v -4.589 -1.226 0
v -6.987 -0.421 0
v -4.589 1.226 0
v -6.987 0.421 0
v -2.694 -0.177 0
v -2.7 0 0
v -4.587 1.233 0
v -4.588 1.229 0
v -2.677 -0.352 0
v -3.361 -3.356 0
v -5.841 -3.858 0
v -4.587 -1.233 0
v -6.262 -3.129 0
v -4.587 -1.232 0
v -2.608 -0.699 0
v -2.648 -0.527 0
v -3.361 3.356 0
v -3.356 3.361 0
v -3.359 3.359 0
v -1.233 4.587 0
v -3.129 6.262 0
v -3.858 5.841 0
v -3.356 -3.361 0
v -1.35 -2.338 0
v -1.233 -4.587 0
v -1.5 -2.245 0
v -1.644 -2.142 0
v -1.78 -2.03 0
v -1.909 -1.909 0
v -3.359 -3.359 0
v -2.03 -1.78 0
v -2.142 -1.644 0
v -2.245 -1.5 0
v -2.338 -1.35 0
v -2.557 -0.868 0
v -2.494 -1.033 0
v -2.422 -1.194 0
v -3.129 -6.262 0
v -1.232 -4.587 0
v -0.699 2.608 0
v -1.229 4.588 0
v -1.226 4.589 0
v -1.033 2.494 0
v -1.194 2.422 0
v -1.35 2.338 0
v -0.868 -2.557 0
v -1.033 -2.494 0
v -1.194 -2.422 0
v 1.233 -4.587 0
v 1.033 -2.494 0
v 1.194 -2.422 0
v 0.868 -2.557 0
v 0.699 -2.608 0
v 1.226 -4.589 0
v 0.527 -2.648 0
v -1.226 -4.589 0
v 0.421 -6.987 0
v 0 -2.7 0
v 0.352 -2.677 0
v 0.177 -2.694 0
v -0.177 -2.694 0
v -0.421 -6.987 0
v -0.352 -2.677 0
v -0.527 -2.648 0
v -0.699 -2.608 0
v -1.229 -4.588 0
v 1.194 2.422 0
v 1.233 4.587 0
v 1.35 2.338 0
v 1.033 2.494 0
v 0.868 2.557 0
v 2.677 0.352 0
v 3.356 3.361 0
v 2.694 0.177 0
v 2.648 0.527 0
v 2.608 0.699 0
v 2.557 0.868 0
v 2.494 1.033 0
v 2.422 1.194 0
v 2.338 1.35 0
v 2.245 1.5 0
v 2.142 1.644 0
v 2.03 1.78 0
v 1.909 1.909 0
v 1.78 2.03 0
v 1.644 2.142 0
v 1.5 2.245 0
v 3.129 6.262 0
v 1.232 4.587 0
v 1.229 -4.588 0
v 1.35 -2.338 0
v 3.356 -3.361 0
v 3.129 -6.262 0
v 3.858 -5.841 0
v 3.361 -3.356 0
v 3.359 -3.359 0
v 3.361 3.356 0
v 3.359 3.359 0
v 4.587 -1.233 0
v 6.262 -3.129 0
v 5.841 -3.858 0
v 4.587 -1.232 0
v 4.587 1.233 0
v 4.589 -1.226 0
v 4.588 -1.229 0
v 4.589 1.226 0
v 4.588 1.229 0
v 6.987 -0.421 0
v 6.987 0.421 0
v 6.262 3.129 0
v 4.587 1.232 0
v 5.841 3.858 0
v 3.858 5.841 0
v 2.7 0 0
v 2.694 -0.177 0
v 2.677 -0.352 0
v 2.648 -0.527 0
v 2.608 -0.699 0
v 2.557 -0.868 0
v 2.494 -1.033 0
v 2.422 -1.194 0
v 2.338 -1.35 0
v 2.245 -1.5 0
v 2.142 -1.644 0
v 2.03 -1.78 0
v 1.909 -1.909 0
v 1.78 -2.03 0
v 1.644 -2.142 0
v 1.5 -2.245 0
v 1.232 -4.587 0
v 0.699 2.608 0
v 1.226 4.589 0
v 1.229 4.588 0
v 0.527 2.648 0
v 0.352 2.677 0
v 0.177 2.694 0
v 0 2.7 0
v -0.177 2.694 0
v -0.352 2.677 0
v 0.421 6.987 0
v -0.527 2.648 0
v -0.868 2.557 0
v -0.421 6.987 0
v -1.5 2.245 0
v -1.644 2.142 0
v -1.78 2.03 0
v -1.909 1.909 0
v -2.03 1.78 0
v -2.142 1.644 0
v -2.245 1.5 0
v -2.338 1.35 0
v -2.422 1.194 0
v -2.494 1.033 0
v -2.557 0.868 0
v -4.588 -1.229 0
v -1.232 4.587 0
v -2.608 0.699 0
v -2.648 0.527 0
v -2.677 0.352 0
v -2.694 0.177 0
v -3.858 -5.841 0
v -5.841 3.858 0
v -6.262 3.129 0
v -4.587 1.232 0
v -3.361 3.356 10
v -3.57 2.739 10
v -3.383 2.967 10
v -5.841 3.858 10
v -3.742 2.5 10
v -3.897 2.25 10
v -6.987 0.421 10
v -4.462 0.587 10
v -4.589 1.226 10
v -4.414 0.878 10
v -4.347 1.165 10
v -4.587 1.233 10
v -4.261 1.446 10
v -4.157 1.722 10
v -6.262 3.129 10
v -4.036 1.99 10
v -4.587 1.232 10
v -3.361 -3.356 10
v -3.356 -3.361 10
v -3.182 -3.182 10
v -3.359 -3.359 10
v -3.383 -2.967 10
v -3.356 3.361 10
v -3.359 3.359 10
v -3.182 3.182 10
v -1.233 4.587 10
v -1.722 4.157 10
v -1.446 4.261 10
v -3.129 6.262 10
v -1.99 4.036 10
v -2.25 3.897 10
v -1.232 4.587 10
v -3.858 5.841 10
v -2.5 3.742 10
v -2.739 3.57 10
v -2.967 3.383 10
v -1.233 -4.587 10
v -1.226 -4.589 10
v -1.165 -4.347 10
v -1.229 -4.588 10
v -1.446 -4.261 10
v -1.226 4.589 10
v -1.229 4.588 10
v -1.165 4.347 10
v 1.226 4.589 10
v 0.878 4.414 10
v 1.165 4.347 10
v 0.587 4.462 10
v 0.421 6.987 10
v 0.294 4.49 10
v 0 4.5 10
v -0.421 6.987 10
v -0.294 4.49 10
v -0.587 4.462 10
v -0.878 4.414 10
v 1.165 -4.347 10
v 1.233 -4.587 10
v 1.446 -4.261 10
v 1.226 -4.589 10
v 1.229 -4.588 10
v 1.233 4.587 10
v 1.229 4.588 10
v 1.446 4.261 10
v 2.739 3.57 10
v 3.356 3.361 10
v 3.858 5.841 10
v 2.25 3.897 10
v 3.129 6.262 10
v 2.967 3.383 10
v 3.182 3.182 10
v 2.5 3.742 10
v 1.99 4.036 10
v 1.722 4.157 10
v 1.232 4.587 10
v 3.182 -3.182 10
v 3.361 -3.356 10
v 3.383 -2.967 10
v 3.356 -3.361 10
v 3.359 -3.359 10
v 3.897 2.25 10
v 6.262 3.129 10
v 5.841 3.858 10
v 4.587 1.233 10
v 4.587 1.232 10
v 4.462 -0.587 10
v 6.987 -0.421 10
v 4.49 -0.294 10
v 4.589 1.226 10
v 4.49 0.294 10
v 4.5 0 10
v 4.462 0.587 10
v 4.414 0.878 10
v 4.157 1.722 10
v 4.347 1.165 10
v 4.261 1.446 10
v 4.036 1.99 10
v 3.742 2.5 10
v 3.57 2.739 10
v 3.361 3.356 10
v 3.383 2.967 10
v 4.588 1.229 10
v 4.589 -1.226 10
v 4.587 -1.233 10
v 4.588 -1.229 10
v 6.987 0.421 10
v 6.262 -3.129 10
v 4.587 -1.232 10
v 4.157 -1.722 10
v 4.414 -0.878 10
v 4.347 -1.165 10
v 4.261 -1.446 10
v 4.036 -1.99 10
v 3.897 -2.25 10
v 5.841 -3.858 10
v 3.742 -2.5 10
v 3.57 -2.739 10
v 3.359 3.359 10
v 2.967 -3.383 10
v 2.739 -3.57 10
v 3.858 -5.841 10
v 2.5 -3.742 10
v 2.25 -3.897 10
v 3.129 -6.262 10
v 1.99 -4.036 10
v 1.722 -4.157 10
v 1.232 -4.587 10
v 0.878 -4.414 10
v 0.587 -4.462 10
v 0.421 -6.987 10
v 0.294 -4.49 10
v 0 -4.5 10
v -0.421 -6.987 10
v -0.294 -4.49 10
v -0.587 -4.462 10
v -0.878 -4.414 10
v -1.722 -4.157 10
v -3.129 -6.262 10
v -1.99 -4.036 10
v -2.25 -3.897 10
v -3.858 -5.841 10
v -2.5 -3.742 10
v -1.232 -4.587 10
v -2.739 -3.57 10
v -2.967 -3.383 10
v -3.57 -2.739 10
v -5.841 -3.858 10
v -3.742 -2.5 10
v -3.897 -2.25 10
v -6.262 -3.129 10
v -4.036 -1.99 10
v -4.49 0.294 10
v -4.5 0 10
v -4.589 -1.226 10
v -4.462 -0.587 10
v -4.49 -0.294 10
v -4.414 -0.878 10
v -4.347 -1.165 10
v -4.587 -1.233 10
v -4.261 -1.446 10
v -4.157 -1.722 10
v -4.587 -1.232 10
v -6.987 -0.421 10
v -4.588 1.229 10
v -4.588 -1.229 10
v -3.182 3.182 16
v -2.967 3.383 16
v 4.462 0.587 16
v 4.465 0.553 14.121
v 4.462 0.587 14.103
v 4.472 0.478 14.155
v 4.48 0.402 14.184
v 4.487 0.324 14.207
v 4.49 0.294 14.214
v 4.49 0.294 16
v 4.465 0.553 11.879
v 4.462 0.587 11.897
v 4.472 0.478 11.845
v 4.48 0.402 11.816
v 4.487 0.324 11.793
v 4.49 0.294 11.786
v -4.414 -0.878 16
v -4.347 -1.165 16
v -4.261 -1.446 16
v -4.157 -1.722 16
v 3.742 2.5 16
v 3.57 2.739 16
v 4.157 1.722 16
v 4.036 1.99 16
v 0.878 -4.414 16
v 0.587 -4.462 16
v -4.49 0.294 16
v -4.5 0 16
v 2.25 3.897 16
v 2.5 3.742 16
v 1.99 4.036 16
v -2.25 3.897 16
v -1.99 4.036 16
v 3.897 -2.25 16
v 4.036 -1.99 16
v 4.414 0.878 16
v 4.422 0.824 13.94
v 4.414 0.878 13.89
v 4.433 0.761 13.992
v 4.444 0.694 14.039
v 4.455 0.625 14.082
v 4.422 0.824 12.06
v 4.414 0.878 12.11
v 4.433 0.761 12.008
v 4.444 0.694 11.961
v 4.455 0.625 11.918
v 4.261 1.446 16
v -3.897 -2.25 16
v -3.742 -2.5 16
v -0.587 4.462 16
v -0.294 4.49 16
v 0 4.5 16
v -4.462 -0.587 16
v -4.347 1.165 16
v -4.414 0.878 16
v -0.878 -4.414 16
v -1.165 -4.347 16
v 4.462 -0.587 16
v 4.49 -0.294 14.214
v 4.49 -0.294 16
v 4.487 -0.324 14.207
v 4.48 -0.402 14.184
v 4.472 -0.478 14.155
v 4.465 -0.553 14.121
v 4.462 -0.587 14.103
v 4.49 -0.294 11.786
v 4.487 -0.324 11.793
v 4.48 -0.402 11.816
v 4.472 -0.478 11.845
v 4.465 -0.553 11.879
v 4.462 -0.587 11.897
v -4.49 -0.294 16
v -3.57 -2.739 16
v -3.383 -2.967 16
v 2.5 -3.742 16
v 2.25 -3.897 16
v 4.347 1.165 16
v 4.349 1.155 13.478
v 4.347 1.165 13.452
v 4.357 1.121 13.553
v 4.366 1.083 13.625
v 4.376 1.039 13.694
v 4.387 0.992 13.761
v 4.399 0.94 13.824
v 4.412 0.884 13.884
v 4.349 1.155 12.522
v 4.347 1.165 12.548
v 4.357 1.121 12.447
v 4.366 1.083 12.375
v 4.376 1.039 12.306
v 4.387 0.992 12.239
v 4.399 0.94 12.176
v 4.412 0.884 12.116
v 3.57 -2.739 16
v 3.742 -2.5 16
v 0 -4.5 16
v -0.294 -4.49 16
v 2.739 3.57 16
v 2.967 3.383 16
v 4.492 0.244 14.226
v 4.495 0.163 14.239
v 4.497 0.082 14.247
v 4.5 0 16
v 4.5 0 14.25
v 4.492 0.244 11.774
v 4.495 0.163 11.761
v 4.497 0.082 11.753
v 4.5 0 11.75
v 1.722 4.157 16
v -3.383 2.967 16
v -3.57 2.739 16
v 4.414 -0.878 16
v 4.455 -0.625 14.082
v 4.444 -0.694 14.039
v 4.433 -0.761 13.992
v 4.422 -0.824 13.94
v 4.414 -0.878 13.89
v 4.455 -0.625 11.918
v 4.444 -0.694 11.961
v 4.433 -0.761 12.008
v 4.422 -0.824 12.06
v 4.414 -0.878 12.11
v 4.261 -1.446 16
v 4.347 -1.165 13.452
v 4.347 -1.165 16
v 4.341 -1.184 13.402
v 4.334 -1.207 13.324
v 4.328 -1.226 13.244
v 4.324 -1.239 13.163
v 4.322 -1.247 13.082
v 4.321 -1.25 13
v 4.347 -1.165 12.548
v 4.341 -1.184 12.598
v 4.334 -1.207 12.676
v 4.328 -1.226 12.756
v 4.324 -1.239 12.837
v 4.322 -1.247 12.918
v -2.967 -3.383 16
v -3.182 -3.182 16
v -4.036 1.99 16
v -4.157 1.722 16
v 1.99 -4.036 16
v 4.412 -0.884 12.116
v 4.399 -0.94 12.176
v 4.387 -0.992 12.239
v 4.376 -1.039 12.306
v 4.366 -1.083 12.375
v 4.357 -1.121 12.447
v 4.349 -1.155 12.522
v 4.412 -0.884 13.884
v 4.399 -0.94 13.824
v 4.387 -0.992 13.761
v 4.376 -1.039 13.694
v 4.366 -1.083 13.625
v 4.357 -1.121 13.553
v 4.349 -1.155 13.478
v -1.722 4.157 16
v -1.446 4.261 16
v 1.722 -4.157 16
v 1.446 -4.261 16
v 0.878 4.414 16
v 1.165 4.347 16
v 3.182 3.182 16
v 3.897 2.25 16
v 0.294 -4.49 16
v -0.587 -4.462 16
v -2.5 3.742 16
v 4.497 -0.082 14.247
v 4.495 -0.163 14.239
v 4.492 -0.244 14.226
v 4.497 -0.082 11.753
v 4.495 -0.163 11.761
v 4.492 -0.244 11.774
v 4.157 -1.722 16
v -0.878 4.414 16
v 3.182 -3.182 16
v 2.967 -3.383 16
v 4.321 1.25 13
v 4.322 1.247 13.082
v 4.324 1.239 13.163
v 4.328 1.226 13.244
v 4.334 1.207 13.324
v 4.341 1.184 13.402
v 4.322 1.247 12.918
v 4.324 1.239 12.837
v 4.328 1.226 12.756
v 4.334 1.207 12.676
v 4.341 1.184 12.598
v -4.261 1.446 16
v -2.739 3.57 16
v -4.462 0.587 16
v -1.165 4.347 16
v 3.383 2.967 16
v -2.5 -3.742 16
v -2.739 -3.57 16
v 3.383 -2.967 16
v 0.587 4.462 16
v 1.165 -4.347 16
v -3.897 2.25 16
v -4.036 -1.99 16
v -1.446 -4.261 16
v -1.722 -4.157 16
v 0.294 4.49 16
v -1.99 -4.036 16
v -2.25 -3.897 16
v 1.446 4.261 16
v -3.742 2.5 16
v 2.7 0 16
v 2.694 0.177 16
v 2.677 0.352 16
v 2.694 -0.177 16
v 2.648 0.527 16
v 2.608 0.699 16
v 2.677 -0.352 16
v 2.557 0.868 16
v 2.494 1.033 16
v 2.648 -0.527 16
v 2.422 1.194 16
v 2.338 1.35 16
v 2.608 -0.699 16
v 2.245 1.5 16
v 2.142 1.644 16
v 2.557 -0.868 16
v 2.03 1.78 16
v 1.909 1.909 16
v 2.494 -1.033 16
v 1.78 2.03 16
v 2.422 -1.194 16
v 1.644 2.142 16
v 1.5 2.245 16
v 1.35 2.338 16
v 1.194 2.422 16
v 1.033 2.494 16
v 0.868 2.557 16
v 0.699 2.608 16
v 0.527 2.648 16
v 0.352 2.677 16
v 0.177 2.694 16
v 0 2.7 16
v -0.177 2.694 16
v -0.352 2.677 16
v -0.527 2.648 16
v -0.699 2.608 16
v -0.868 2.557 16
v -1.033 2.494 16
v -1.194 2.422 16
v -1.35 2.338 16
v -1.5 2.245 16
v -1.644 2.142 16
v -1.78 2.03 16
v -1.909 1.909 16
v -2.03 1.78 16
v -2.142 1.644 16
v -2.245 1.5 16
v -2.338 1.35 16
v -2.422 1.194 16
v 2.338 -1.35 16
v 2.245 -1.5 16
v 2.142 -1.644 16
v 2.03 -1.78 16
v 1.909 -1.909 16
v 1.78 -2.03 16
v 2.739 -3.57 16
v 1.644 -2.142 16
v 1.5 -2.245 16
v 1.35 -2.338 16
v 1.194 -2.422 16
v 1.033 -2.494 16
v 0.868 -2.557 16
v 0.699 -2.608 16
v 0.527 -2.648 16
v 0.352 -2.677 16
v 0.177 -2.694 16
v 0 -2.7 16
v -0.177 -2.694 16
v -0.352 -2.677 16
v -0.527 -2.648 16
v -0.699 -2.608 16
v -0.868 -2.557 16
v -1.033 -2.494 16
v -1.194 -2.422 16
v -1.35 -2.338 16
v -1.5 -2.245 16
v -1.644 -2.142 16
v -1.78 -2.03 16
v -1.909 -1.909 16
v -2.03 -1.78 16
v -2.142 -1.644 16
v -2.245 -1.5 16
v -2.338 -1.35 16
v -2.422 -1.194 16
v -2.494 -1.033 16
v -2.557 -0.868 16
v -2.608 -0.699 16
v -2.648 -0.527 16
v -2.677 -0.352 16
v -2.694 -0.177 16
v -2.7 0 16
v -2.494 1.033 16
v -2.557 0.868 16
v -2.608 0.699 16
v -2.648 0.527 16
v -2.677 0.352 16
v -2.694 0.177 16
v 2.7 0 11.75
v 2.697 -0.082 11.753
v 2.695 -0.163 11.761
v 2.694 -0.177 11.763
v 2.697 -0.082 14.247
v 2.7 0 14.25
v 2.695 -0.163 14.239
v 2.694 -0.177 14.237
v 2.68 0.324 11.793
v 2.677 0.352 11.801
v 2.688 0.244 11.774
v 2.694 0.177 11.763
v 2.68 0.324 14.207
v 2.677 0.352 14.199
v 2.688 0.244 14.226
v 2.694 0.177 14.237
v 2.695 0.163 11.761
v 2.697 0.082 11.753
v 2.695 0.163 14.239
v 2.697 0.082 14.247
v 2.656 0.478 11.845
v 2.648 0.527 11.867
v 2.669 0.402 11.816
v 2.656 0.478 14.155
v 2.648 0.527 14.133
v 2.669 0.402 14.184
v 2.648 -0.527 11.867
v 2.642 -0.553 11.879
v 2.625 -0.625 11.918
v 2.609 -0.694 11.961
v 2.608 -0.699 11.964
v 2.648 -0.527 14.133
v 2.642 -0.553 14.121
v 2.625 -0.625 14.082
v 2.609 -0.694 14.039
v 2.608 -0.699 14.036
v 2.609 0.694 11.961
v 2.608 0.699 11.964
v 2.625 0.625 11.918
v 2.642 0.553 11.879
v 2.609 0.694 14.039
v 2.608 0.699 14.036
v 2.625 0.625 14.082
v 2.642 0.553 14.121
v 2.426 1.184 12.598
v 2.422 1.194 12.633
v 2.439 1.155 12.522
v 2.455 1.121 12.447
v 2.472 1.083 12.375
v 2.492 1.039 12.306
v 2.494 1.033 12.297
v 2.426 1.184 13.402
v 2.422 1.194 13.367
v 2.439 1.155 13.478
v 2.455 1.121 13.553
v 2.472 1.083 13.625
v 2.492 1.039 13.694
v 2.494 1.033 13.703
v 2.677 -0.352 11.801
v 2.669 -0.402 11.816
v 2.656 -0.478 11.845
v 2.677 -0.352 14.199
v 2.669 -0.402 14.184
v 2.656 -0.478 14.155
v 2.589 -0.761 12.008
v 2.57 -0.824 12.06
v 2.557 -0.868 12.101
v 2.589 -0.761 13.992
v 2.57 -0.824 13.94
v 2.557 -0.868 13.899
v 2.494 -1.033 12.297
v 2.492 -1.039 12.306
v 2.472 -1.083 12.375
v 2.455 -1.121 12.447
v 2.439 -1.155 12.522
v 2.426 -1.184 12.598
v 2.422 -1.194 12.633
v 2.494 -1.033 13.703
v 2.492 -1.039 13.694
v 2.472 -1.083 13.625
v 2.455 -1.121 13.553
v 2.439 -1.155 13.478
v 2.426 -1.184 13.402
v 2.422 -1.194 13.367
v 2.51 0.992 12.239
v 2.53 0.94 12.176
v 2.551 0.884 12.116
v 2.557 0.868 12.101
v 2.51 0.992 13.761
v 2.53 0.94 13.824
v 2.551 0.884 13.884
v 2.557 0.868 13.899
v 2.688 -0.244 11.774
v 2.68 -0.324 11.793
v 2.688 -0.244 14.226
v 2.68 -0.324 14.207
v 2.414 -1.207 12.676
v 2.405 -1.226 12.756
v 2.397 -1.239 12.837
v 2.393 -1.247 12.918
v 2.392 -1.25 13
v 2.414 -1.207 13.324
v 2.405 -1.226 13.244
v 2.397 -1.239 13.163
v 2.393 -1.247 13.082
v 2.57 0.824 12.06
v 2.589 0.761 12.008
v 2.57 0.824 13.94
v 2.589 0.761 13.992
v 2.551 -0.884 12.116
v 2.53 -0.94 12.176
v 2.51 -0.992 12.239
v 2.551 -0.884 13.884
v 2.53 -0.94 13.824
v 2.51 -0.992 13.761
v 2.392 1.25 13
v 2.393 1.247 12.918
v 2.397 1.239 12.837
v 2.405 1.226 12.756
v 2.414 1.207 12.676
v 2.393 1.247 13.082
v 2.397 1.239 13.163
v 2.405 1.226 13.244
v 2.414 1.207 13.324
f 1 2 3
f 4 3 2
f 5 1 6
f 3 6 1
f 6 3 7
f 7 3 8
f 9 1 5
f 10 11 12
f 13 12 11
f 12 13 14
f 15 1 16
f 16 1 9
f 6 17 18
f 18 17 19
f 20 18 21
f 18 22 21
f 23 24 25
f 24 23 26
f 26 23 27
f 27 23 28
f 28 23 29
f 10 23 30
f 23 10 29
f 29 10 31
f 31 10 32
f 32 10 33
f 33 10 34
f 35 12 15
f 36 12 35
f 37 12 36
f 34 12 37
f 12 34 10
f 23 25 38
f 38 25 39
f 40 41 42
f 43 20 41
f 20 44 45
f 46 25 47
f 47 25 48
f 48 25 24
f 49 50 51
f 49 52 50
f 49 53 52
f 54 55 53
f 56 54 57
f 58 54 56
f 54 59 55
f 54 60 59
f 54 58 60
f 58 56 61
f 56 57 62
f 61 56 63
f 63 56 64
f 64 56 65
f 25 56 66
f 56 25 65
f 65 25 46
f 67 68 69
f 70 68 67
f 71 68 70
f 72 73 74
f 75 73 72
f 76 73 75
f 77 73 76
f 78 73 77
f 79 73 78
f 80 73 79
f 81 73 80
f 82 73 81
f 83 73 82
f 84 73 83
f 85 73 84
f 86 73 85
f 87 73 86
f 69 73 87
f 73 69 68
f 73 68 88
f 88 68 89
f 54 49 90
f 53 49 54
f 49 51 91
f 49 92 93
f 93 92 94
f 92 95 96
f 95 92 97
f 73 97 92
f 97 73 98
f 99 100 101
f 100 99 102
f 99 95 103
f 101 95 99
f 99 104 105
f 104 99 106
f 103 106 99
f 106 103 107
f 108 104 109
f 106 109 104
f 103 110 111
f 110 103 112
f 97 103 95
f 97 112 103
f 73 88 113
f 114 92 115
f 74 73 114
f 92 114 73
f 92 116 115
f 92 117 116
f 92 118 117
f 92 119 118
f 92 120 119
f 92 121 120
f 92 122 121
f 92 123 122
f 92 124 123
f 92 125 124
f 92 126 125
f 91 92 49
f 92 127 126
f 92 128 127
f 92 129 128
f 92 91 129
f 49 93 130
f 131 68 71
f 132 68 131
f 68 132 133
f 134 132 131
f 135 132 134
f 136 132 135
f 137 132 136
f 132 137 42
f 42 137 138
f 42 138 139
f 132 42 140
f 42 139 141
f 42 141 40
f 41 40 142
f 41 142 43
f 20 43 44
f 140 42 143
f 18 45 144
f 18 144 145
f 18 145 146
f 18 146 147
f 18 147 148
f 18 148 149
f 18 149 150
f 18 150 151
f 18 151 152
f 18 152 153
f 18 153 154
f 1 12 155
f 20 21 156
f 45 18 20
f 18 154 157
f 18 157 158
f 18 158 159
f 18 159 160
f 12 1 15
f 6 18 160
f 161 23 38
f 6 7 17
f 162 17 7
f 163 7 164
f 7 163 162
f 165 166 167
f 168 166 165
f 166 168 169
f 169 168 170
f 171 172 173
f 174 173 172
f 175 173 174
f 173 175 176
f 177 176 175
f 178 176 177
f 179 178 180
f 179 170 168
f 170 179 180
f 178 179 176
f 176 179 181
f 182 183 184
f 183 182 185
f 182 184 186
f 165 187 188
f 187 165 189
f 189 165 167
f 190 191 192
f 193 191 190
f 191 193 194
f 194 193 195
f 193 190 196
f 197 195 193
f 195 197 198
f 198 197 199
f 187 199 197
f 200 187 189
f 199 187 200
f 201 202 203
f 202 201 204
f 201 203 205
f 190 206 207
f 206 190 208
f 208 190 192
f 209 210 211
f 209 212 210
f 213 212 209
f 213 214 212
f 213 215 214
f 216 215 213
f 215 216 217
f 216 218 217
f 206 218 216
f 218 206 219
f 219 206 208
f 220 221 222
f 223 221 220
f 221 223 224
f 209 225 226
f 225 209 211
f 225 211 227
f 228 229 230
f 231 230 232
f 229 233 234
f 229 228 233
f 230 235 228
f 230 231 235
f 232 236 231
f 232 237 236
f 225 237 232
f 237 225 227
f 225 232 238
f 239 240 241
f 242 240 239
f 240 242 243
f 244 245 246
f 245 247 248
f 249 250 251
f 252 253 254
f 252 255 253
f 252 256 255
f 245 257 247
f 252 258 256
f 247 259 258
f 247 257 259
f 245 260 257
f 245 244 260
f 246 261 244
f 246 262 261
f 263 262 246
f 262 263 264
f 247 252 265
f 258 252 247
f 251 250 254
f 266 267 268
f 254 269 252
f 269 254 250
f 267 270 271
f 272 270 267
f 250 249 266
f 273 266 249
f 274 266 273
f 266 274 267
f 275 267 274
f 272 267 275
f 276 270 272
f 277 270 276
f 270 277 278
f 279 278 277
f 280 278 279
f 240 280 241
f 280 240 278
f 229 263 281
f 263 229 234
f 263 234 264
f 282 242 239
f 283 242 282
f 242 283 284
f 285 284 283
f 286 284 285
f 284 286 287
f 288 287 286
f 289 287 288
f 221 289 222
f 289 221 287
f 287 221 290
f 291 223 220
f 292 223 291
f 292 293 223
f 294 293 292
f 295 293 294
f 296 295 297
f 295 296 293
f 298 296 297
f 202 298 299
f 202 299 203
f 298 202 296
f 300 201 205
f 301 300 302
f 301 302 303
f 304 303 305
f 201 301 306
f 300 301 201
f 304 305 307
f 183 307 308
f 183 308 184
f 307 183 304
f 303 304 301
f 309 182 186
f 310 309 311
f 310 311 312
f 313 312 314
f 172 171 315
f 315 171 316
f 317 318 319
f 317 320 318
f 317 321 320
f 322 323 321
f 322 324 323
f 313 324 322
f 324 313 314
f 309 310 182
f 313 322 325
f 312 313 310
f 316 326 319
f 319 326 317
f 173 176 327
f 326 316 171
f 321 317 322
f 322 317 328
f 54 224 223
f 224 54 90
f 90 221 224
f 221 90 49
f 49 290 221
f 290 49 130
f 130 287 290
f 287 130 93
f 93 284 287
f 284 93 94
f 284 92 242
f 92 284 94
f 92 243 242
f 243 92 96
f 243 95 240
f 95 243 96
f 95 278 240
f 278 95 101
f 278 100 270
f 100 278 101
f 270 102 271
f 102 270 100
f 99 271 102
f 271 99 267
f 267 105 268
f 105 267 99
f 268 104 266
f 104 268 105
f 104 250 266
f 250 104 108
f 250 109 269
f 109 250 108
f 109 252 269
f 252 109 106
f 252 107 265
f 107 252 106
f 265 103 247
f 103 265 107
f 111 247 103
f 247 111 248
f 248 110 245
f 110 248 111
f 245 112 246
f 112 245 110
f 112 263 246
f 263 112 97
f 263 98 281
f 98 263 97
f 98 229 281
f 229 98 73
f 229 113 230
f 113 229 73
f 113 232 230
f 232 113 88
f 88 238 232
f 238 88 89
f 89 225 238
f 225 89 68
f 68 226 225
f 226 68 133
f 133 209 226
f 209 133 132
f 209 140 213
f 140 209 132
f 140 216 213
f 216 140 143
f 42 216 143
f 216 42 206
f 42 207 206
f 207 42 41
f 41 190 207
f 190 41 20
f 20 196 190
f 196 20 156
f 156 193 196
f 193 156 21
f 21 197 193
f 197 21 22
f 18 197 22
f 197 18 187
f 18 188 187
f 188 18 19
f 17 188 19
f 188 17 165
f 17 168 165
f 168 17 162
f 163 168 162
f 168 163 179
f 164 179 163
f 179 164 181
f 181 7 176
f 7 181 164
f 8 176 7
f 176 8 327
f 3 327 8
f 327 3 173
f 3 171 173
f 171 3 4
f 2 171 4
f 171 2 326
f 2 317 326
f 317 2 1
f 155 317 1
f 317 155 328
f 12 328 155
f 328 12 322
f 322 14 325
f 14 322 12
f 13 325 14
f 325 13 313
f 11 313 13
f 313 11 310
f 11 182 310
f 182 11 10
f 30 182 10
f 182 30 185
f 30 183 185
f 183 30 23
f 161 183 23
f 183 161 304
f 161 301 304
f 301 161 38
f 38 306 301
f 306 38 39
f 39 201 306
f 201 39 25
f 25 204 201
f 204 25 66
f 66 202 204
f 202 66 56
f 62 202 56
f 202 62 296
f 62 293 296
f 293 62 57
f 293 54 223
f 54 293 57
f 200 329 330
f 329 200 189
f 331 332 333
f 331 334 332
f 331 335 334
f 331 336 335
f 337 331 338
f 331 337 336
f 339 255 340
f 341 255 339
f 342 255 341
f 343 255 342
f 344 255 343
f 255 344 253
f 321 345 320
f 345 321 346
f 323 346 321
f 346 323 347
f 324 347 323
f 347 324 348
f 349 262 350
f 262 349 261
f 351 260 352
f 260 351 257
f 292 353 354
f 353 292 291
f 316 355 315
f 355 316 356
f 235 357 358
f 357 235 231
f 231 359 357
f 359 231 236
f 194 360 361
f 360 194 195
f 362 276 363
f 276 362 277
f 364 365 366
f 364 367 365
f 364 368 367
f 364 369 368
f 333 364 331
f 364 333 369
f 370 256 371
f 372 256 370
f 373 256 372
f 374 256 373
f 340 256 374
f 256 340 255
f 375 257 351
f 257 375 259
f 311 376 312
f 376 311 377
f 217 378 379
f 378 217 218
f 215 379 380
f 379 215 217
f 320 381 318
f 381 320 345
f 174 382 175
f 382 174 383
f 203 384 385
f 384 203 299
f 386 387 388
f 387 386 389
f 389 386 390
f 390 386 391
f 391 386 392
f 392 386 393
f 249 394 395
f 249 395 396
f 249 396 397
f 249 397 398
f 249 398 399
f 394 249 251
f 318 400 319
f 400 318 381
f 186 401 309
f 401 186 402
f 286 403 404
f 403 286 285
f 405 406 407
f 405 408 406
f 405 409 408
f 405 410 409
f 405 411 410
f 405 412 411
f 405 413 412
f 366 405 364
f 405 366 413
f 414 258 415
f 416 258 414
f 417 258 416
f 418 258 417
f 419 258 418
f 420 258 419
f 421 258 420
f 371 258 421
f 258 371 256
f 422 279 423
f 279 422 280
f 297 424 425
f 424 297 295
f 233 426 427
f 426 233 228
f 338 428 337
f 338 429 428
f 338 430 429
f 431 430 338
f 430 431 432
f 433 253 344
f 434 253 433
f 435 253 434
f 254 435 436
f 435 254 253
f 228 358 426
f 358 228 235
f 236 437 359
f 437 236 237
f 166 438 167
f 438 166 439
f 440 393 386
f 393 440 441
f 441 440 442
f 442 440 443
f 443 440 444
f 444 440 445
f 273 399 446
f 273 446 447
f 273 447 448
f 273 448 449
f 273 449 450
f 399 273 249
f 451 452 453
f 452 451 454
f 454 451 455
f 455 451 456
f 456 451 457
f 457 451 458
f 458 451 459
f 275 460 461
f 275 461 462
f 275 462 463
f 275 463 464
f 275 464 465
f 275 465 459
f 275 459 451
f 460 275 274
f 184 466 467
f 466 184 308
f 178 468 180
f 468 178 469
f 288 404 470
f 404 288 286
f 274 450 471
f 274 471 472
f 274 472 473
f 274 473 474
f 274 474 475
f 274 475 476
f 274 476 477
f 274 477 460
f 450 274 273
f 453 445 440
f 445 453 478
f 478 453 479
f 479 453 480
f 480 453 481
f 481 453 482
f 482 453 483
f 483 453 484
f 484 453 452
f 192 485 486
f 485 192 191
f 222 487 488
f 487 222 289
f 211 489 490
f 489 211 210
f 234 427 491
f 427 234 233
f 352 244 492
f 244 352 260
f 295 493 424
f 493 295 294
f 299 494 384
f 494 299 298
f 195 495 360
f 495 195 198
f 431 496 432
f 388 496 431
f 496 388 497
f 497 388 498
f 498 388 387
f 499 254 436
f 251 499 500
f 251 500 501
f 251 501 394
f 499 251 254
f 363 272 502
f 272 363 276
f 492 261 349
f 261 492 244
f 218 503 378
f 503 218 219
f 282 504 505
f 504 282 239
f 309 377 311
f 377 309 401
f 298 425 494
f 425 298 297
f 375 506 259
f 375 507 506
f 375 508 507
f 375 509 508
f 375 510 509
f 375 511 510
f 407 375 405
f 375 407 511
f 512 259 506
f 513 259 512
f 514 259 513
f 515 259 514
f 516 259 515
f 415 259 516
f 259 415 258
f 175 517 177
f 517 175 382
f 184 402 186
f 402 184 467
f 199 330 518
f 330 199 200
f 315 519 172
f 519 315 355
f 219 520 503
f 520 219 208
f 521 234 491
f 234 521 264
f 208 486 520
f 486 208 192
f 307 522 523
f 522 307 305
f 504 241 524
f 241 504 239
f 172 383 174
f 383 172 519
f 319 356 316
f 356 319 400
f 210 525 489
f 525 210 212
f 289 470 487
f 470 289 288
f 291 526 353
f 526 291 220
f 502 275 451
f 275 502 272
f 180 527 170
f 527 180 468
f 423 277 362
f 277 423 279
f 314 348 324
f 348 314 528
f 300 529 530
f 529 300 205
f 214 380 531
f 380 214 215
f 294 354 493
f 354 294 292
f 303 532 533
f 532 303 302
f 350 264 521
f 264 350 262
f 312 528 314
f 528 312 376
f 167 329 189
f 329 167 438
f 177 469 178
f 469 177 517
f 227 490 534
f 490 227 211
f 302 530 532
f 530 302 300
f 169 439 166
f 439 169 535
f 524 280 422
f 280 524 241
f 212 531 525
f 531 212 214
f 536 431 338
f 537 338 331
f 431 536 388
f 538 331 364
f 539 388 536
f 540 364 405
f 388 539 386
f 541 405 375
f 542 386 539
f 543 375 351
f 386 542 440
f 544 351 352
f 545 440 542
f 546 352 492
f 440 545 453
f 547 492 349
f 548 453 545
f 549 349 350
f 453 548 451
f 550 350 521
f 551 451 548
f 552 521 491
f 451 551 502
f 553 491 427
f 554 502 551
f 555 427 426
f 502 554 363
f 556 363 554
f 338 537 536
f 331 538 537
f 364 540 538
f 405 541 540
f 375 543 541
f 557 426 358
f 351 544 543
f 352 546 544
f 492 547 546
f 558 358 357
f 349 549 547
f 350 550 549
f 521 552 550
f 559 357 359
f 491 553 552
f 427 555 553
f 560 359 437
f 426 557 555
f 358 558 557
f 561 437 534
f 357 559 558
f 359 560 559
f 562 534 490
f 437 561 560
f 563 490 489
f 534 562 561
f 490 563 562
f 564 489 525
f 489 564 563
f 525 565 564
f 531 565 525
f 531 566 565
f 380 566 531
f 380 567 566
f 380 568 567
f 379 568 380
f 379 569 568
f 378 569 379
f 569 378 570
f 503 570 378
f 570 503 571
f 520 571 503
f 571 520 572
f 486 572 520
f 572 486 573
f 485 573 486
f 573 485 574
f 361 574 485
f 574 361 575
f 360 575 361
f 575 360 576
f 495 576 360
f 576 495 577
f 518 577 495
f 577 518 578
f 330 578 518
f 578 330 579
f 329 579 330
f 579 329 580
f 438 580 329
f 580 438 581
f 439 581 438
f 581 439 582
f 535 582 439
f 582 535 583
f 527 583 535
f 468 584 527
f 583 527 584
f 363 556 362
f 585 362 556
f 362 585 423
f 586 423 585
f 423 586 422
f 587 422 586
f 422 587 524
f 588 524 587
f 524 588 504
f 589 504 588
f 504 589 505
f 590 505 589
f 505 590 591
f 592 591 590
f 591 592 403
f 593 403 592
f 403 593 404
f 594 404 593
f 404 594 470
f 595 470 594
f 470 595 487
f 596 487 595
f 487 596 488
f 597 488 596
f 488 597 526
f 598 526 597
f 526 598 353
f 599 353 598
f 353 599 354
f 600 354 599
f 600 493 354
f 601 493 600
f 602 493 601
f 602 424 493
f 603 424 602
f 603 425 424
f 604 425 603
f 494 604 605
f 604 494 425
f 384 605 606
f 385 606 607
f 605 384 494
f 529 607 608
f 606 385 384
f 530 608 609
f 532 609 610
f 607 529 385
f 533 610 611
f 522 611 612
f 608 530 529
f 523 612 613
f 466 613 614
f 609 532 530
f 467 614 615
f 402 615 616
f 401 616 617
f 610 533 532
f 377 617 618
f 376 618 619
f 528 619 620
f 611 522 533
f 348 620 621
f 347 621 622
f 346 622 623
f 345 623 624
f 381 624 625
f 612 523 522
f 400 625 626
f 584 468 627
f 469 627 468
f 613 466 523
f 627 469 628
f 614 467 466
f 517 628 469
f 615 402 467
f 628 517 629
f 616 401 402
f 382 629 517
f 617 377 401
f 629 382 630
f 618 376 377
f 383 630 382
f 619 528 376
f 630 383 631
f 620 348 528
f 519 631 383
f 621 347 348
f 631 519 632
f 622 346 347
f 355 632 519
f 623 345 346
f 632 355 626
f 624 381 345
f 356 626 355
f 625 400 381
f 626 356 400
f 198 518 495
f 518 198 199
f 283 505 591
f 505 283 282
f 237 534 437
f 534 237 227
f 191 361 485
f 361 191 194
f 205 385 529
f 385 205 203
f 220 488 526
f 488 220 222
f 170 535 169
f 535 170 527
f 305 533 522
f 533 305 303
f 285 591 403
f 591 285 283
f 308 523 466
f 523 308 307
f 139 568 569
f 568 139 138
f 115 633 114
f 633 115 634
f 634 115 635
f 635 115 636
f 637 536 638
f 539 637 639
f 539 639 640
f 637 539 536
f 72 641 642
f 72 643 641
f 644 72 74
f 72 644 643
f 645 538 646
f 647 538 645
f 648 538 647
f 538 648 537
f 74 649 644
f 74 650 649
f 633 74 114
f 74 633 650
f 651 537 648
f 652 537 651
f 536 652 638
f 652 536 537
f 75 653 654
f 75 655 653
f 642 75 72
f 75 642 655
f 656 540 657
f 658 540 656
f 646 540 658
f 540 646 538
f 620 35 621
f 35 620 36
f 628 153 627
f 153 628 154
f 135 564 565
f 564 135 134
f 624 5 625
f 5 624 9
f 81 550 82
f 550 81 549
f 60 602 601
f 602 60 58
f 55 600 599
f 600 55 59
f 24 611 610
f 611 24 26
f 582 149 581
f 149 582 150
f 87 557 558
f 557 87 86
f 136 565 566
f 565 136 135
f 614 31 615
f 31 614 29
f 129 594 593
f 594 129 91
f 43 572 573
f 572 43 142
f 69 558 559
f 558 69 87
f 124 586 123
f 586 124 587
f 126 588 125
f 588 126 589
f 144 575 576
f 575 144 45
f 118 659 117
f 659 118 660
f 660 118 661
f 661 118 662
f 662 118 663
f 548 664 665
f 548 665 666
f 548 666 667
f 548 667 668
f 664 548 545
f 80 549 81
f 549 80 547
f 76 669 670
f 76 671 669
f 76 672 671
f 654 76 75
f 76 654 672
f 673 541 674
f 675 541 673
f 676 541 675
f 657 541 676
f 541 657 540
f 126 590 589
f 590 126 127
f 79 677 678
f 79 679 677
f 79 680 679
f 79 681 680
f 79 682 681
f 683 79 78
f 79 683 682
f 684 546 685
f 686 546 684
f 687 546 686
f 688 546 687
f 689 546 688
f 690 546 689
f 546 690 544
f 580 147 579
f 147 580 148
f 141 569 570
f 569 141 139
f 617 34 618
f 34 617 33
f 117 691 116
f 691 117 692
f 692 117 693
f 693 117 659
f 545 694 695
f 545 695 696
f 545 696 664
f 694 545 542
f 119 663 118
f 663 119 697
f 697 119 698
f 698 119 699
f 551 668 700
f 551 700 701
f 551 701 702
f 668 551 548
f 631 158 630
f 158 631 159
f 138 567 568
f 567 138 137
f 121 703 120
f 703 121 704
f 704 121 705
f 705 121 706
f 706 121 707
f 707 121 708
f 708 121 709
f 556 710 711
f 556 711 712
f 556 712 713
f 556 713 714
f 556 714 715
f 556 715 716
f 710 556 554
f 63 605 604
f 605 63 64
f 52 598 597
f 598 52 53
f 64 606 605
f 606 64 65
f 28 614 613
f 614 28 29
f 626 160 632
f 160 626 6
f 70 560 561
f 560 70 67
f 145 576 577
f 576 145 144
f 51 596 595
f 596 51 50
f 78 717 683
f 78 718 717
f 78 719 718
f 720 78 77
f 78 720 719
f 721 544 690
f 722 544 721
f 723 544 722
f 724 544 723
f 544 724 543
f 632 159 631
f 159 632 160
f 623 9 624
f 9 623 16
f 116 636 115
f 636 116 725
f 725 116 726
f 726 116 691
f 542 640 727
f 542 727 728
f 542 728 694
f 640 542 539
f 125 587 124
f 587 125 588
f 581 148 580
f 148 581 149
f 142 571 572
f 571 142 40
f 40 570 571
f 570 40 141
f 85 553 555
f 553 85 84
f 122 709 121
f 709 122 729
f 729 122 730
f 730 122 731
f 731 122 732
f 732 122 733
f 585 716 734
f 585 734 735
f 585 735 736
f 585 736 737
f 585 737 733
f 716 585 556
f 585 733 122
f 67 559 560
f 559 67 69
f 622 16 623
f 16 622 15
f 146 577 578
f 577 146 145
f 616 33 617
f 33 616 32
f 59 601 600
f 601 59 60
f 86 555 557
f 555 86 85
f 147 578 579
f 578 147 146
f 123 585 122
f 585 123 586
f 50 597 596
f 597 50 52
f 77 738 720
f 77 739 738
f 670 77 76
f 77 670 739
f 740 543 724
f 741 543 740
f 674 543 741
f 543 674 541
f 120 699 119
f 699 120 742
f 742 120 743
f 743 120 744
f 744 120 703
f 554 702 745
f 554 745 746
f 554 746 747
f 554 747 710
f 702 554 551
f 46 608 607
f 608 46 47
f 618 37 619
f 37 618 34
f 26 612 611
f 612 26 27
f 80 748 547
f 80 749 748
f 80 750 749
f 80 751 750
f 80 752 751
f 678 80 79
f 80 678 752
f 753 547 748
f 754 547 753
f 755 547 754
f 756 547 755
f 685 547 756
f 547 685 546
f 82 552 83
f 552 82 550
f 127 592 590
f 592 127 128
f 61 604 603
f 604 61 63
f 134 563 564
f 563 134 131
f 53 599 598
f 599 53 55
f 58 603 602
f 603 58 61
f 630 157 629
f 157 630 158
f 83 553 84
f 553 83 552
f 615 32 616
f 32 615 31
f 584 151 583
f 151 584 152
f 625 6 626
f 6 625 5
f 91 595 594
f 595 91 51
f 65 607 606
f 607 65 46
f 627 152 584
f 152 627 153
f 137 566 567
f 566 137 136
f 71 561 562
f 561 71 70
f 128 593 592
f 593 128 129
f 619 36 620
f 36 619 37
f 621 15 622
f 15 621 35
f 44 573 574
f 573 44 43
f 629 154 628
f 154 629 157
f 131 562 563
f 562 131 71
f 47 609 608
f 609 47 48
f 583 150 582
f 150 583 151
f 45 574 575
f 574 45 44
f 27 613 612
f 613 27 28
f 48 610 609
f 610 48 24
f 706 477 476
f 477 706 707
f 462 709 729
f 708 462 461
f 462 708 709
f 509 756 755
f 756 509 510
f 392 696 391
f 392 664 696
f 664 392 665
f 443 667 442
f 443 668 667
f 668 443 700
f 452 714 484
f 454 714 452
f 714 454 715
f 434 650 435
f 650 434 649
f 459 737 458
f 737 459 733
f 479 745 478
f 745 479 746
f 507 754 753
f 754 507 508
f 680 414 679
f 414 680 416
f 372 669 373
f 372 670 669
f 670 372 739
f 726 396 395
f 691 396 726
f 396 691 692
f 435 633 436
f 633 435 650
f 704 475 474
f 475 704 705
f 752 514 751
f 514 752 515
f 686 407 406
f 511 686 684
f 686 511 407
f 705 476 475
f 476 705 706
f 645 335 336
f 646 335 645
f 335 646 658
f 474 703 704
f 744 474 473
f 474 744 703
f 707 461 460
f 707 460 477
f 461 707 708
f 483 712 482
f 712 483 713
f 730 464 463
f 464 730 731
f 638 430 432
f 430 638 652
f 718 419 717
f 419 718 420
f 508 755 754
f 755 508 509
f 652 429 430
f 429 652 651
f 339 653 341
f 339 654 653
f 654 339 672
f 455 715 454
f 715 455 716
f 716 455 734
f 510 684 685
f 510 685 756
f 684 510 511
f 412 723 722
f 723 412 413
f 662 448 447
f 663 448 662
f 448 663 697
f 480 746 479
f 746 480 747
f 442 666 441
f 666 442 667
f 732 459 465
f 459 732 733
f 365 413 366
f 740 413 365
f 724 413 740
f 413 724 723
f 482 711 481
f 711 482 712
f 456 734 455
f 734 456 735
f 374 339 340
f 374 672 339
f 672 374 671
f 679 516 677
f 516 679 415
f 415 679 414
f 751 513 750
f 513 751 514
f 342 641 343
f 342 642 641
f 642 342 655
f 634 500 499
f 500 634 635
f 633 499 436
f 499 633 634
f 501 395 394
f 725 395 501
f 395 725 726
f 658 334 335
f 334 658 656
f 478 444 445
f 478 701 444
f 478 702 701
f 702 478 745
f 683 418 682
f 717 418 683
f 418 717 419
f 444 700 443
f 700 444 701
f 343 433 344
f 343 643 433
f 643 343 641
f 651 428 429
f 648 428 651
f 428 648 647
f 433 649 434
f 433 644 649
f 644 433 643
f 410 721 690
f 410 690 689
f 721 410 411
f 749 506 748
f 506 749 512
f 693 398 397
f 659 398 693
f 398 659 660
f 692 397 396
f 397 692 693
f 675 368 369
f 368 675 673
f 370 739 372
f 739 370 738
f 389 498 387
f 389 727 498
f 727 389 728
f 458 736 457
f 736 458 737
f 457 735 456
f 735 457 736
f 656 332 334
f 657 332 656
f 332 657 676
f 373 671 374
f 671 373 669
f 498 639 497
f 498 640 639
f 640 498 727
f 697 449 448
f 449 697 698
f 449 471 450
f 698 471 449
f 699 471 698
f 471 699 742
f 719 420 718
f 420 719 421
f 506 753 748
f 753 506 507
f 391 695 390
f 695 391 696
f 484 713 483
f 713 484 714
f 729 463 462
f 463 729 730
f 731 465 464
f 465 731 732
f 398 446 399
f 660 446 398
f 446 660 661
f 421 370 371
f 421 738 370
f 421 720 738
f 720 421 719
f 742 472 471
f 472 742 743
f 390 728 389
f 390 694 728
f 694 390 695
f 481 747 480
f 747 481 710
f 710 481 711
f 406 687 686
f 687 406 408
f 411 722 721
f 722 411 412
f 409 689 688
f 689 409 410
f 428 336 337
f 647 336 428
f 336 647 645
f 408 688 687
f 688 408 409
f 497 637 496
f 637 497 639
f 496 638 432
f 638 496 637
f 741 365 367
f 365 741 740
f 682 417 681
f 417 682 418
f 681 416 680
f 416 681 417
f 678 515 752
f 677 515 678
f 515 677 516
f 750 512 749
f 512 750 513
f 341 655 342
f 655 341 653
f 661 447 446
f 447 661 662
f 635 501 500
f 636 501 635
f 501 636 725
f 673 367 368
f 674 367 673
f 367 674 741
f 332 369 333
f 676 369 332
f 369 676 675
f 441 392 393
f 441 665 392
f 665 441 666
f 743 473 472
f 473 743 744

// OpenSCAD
// file: gear-teeth.scad
// ================================================================
// Powder Excavator - shared spur-gear primitives
// ================================================================
//
// Common stub-tooth math used by both
//   - archimedes-auger-geared.scad  (driven gear band on the auger)
//   - stepper-pinion.scad           (pinion on the NEMA 11 shaft)
//
// Keeping these helpers in one file means the two meshing parts
// cannot drift out of agreement on tooth profile during future
// maintenance.
//
// Tooth model: linear-flank approximation to a 20-deg involute stub
// tooth. For each tooth at radius r the half-thickness is
//
//   t(r) = pi * m / 2 - 2 * (r - pitch_r) * tan(PA)        [arc len]
//
// expressed as an angle in degrees (`tooth_half_angle`). For very
// small tooth counts (Z <= ~14) the analytic root half-angle exceeds
// half the angular pitch and adjacent tooth roots would overlap;
// `clamp_half_angle` clamps that case to the half-pitch, which prints
// cleanly and is harmless because the working flanks at and outside
// the pitch circle remain correct.
//
// OpenSCAD's tan() takes degrees, which is what we want for `PA`.
// ================================================================

function tooth_half_angle(r, pitch_r, m, PA) =
    ((PI * m / 2 - 2 * (r - pitch_r) * tan(PA)) / (2 * r)) * 180 / PI;

function clamp_half_angle(a, Z) = min(a, 360 / (2 * Z));

// 2D spur-gear cross-section: a root-circle disc unioned with `Z`
// trapezoidal teeth. Caller supplies the derived radii so the same
// helper works for any module / tooth count.
module spur_gear_2d(Z, m, PA, root_r, pitch_r, tip_r) {
    union() {
        circle(r = root_r);
        for (i = [0 : Z - 1]) {
            rotate(360 * i / Z) {
                a_root = clamp_half_angle(tooth_half_angle(root_r, pitch_r, m, PA), Z);
                a_tip  = tooth_half_angle(tip_r,  pitch_r, m, PA);
                polygon(points = [
                    [root_r * cos(-a_root), root_r * sin(-a_root)],
                    [tip_r  * cos(-a_tip),  tip_r  * sin(-a_tip) ],
                    [tip_r  * cos( a_tip),  tip_r  * sin( a_tip) ],
                    [root_r * cos( a_root), root_r * sin( a_root)],
                ]);
            }
        }
    }
}
// main file
// ================================================================
// Powder Excavator - NEMA 11 stepper pinion  v1
// ================================================================
//
// 12-tooth, module-1 mm spur pinion sized to mate with the 30-tooth
// integrated gear band on cad/auger-geared/archimedes-auger-geared.scad
// (which itself is the geared variant of the Archimedes auger from
// PR #16). The pinion mounts on the 5 mm round output shaft of a
// NEMA 11 bipolar stepper -- specifically the StepperOnline
// 11HS18-0674S that PR #25 selected as the auger drive motor (item 10
// in hardware/vibration-motor-and-solenoid.md).
//
// Drive parameters
// ----------------
//   Pinion teeth          (Z_p) = 12
//   Driven (auger) teeth  (Z_g) = 30
//   Module                (m)   = 1.0 mm
//   Pressure angle        (PA)  = 20 deg
//   Center distance       (C)   = (Z_g + Z_p) * m / 2 = 21.0 mm
//   Gear ratio (reduction)      = Z_g / Z_p = 30 / 12 = 2.5 : 1
//   Backlash allowance          = ~0.15 mm at pitch (printed-gear rule
//                                  of thumb; absorbed by adjustable
//                                  bracket slots, see ./README.md)
//
// At the NEMA 11's native 1.8 deg/full-step:
//   Per auger revolution = 200 * 2.5 = 500 full-steps = 8000 microsteps
//                           at 1/16 microstepping.
//   Per microstep        = 360 / 8000 = 0.045 deg of auger rotation,
//                           i.e. ~6.1 um of arc at the 25 mm OD.
//
// Print:   PLA or PETG, 0.2 mm layers, 0.4 mm nozzle. Print FLAT on
//          the build plate (gear face down) so the teeth come out as
//          full-perimeter walls -- highest dimensional accuracy. 4
//          perimeters, 30% gyroid infill, no supports.
// Render:  Paste into https://openscad.org/demo/ -> F6 (Render)
// Headless:
//   openscad -o stepper-pinion.stl  stepper-pinion.scad
//   openscad -o stepper-pinion.step stepper-pinion.scad
//
// ================================================================

// ----------------------------------------------------------------
// Parameters
// ----------------------------------------------------------------

/* [Gear teeth] */
gear_module      = 1.0;   // mm  (must match archimedes-auger-geared.scad)
pinion_teeth     = 12;
pressure_angle   = 20;    // deg
face_width       = 10;    // mm  (must match archimedes-auger-geared.scad)

/* [NEMA 11 shaft mount] */
// 11HS18-0674S has a 5 mm round output shaft (no D-cut). Bore is
// printed slightly oversize for slip-fit; an M3 setscrew through a
// radial threaded hole in the hub locks the pinion to the shaft.
shaft_d          = 5.0;
shaft_clearance  = 0.20;  // mm radial slip-fit allowance for FDM
hub_d            = 9.0;   // mm hub OD around the bore (above gear face)
hub_h            = 6.0;   // mm hub height ABOVE the gear face
setscrew_d       = 2.5;   // mm M3 pilot (tap M3 after print)
setscrew_z       = 3.0;   // mm height of setscrew axis above gear face

$fn = 96;

// ----------------------------------------------------------------
// Derived gear geometry
// ----------------------------------------------------------------
pinion_pitch_r   = gear_module * pinion_teeth / 2;       // 6.0 mm
pinion_addendum  = gear_module;                           // 1.0 mm
pinion_dedendum  = 1.25 * gear_module;                    // 1.25 mm
pinion_tip_r     = pinion_pitch_r + pinion_addendum;      // 7.0 mm
pinion_root_r    = pinion_pitch_r - pinion_dedendum;      // 4.75 mm
bore_r           = shaft_d / 2 + shaft_clearance;         // 2.70 mm

// Sanity:
//   pinion_root_r (4.75) > bore_r (2.70) by 2.05 mm -> ample wall
//   between the bore and the tooth roots.

// ----------------------------------------------------------------
// Stub-tooth helper - shared with archimedes-auger-geared.scad via
// gear-teeth.scad so the meshing pair cannot drift apart. Linear-
// flank approximation of a 20-deg involute (see gear-teeth.scad
// header for rationale). For Z=12 the analytic root half-angle would
// exceed the half-pitch (360/2Z = 15 deg); spur_gear_2d() clamps to
// the half-pitch in that case, so the tooth roots meet tangentially
// with zero gap, which prints cleanly and is fine for the low-speed
// metering drive.
// ----------------------------------------------------------------

include <gear-teeth.scad>;

// ----------------------------------------------------------------
// Assembly
// ----------------------------------------------------------------
module stepper_pinion() {
    color("#D55B5B", 0.95)
    difference() {
        union() {
            // Toothed gear disc (face_width thick, sitting at z = 0)
            linear_extrude(height = face_width, convexity = 2 * pinion_teeth)
                spur_gear_2d(
                    Z       = pinion_teeth,
                    m       = gear_module,
                    PA      = pressure_angle,
                    root_r  = pinion_root_r,
                    pitch_r = pinion_pitch_r,
                    tip_r   = pinion_tip_r
                );
            // Hub stack ABOVE the gear face for the setscrew. Hub OD
            // (9 mm) is smaller than the root diameter (9.5 mm) so it
            // never collides with a meshing tooth.
            translate([0, 0, face_width])
                cylinder(d = hub_d, h = hub_h);
        }
        // Through-bore for the 5 mm stepper shaft.
        translate([0, 0, -0.1])
            cylinder(r = bore_r, h = face_width + hub_h + 0.2);
        // Radial M3 setscrew pilot, axis through the hub.
        translate([0, 0, face_width + setscrew_z])
            rotate([0, 90, 0])
                cylinder(d = setscrew_d, h = hub_d / 2 + 0.5);
    }
}

stepper_pinion();
